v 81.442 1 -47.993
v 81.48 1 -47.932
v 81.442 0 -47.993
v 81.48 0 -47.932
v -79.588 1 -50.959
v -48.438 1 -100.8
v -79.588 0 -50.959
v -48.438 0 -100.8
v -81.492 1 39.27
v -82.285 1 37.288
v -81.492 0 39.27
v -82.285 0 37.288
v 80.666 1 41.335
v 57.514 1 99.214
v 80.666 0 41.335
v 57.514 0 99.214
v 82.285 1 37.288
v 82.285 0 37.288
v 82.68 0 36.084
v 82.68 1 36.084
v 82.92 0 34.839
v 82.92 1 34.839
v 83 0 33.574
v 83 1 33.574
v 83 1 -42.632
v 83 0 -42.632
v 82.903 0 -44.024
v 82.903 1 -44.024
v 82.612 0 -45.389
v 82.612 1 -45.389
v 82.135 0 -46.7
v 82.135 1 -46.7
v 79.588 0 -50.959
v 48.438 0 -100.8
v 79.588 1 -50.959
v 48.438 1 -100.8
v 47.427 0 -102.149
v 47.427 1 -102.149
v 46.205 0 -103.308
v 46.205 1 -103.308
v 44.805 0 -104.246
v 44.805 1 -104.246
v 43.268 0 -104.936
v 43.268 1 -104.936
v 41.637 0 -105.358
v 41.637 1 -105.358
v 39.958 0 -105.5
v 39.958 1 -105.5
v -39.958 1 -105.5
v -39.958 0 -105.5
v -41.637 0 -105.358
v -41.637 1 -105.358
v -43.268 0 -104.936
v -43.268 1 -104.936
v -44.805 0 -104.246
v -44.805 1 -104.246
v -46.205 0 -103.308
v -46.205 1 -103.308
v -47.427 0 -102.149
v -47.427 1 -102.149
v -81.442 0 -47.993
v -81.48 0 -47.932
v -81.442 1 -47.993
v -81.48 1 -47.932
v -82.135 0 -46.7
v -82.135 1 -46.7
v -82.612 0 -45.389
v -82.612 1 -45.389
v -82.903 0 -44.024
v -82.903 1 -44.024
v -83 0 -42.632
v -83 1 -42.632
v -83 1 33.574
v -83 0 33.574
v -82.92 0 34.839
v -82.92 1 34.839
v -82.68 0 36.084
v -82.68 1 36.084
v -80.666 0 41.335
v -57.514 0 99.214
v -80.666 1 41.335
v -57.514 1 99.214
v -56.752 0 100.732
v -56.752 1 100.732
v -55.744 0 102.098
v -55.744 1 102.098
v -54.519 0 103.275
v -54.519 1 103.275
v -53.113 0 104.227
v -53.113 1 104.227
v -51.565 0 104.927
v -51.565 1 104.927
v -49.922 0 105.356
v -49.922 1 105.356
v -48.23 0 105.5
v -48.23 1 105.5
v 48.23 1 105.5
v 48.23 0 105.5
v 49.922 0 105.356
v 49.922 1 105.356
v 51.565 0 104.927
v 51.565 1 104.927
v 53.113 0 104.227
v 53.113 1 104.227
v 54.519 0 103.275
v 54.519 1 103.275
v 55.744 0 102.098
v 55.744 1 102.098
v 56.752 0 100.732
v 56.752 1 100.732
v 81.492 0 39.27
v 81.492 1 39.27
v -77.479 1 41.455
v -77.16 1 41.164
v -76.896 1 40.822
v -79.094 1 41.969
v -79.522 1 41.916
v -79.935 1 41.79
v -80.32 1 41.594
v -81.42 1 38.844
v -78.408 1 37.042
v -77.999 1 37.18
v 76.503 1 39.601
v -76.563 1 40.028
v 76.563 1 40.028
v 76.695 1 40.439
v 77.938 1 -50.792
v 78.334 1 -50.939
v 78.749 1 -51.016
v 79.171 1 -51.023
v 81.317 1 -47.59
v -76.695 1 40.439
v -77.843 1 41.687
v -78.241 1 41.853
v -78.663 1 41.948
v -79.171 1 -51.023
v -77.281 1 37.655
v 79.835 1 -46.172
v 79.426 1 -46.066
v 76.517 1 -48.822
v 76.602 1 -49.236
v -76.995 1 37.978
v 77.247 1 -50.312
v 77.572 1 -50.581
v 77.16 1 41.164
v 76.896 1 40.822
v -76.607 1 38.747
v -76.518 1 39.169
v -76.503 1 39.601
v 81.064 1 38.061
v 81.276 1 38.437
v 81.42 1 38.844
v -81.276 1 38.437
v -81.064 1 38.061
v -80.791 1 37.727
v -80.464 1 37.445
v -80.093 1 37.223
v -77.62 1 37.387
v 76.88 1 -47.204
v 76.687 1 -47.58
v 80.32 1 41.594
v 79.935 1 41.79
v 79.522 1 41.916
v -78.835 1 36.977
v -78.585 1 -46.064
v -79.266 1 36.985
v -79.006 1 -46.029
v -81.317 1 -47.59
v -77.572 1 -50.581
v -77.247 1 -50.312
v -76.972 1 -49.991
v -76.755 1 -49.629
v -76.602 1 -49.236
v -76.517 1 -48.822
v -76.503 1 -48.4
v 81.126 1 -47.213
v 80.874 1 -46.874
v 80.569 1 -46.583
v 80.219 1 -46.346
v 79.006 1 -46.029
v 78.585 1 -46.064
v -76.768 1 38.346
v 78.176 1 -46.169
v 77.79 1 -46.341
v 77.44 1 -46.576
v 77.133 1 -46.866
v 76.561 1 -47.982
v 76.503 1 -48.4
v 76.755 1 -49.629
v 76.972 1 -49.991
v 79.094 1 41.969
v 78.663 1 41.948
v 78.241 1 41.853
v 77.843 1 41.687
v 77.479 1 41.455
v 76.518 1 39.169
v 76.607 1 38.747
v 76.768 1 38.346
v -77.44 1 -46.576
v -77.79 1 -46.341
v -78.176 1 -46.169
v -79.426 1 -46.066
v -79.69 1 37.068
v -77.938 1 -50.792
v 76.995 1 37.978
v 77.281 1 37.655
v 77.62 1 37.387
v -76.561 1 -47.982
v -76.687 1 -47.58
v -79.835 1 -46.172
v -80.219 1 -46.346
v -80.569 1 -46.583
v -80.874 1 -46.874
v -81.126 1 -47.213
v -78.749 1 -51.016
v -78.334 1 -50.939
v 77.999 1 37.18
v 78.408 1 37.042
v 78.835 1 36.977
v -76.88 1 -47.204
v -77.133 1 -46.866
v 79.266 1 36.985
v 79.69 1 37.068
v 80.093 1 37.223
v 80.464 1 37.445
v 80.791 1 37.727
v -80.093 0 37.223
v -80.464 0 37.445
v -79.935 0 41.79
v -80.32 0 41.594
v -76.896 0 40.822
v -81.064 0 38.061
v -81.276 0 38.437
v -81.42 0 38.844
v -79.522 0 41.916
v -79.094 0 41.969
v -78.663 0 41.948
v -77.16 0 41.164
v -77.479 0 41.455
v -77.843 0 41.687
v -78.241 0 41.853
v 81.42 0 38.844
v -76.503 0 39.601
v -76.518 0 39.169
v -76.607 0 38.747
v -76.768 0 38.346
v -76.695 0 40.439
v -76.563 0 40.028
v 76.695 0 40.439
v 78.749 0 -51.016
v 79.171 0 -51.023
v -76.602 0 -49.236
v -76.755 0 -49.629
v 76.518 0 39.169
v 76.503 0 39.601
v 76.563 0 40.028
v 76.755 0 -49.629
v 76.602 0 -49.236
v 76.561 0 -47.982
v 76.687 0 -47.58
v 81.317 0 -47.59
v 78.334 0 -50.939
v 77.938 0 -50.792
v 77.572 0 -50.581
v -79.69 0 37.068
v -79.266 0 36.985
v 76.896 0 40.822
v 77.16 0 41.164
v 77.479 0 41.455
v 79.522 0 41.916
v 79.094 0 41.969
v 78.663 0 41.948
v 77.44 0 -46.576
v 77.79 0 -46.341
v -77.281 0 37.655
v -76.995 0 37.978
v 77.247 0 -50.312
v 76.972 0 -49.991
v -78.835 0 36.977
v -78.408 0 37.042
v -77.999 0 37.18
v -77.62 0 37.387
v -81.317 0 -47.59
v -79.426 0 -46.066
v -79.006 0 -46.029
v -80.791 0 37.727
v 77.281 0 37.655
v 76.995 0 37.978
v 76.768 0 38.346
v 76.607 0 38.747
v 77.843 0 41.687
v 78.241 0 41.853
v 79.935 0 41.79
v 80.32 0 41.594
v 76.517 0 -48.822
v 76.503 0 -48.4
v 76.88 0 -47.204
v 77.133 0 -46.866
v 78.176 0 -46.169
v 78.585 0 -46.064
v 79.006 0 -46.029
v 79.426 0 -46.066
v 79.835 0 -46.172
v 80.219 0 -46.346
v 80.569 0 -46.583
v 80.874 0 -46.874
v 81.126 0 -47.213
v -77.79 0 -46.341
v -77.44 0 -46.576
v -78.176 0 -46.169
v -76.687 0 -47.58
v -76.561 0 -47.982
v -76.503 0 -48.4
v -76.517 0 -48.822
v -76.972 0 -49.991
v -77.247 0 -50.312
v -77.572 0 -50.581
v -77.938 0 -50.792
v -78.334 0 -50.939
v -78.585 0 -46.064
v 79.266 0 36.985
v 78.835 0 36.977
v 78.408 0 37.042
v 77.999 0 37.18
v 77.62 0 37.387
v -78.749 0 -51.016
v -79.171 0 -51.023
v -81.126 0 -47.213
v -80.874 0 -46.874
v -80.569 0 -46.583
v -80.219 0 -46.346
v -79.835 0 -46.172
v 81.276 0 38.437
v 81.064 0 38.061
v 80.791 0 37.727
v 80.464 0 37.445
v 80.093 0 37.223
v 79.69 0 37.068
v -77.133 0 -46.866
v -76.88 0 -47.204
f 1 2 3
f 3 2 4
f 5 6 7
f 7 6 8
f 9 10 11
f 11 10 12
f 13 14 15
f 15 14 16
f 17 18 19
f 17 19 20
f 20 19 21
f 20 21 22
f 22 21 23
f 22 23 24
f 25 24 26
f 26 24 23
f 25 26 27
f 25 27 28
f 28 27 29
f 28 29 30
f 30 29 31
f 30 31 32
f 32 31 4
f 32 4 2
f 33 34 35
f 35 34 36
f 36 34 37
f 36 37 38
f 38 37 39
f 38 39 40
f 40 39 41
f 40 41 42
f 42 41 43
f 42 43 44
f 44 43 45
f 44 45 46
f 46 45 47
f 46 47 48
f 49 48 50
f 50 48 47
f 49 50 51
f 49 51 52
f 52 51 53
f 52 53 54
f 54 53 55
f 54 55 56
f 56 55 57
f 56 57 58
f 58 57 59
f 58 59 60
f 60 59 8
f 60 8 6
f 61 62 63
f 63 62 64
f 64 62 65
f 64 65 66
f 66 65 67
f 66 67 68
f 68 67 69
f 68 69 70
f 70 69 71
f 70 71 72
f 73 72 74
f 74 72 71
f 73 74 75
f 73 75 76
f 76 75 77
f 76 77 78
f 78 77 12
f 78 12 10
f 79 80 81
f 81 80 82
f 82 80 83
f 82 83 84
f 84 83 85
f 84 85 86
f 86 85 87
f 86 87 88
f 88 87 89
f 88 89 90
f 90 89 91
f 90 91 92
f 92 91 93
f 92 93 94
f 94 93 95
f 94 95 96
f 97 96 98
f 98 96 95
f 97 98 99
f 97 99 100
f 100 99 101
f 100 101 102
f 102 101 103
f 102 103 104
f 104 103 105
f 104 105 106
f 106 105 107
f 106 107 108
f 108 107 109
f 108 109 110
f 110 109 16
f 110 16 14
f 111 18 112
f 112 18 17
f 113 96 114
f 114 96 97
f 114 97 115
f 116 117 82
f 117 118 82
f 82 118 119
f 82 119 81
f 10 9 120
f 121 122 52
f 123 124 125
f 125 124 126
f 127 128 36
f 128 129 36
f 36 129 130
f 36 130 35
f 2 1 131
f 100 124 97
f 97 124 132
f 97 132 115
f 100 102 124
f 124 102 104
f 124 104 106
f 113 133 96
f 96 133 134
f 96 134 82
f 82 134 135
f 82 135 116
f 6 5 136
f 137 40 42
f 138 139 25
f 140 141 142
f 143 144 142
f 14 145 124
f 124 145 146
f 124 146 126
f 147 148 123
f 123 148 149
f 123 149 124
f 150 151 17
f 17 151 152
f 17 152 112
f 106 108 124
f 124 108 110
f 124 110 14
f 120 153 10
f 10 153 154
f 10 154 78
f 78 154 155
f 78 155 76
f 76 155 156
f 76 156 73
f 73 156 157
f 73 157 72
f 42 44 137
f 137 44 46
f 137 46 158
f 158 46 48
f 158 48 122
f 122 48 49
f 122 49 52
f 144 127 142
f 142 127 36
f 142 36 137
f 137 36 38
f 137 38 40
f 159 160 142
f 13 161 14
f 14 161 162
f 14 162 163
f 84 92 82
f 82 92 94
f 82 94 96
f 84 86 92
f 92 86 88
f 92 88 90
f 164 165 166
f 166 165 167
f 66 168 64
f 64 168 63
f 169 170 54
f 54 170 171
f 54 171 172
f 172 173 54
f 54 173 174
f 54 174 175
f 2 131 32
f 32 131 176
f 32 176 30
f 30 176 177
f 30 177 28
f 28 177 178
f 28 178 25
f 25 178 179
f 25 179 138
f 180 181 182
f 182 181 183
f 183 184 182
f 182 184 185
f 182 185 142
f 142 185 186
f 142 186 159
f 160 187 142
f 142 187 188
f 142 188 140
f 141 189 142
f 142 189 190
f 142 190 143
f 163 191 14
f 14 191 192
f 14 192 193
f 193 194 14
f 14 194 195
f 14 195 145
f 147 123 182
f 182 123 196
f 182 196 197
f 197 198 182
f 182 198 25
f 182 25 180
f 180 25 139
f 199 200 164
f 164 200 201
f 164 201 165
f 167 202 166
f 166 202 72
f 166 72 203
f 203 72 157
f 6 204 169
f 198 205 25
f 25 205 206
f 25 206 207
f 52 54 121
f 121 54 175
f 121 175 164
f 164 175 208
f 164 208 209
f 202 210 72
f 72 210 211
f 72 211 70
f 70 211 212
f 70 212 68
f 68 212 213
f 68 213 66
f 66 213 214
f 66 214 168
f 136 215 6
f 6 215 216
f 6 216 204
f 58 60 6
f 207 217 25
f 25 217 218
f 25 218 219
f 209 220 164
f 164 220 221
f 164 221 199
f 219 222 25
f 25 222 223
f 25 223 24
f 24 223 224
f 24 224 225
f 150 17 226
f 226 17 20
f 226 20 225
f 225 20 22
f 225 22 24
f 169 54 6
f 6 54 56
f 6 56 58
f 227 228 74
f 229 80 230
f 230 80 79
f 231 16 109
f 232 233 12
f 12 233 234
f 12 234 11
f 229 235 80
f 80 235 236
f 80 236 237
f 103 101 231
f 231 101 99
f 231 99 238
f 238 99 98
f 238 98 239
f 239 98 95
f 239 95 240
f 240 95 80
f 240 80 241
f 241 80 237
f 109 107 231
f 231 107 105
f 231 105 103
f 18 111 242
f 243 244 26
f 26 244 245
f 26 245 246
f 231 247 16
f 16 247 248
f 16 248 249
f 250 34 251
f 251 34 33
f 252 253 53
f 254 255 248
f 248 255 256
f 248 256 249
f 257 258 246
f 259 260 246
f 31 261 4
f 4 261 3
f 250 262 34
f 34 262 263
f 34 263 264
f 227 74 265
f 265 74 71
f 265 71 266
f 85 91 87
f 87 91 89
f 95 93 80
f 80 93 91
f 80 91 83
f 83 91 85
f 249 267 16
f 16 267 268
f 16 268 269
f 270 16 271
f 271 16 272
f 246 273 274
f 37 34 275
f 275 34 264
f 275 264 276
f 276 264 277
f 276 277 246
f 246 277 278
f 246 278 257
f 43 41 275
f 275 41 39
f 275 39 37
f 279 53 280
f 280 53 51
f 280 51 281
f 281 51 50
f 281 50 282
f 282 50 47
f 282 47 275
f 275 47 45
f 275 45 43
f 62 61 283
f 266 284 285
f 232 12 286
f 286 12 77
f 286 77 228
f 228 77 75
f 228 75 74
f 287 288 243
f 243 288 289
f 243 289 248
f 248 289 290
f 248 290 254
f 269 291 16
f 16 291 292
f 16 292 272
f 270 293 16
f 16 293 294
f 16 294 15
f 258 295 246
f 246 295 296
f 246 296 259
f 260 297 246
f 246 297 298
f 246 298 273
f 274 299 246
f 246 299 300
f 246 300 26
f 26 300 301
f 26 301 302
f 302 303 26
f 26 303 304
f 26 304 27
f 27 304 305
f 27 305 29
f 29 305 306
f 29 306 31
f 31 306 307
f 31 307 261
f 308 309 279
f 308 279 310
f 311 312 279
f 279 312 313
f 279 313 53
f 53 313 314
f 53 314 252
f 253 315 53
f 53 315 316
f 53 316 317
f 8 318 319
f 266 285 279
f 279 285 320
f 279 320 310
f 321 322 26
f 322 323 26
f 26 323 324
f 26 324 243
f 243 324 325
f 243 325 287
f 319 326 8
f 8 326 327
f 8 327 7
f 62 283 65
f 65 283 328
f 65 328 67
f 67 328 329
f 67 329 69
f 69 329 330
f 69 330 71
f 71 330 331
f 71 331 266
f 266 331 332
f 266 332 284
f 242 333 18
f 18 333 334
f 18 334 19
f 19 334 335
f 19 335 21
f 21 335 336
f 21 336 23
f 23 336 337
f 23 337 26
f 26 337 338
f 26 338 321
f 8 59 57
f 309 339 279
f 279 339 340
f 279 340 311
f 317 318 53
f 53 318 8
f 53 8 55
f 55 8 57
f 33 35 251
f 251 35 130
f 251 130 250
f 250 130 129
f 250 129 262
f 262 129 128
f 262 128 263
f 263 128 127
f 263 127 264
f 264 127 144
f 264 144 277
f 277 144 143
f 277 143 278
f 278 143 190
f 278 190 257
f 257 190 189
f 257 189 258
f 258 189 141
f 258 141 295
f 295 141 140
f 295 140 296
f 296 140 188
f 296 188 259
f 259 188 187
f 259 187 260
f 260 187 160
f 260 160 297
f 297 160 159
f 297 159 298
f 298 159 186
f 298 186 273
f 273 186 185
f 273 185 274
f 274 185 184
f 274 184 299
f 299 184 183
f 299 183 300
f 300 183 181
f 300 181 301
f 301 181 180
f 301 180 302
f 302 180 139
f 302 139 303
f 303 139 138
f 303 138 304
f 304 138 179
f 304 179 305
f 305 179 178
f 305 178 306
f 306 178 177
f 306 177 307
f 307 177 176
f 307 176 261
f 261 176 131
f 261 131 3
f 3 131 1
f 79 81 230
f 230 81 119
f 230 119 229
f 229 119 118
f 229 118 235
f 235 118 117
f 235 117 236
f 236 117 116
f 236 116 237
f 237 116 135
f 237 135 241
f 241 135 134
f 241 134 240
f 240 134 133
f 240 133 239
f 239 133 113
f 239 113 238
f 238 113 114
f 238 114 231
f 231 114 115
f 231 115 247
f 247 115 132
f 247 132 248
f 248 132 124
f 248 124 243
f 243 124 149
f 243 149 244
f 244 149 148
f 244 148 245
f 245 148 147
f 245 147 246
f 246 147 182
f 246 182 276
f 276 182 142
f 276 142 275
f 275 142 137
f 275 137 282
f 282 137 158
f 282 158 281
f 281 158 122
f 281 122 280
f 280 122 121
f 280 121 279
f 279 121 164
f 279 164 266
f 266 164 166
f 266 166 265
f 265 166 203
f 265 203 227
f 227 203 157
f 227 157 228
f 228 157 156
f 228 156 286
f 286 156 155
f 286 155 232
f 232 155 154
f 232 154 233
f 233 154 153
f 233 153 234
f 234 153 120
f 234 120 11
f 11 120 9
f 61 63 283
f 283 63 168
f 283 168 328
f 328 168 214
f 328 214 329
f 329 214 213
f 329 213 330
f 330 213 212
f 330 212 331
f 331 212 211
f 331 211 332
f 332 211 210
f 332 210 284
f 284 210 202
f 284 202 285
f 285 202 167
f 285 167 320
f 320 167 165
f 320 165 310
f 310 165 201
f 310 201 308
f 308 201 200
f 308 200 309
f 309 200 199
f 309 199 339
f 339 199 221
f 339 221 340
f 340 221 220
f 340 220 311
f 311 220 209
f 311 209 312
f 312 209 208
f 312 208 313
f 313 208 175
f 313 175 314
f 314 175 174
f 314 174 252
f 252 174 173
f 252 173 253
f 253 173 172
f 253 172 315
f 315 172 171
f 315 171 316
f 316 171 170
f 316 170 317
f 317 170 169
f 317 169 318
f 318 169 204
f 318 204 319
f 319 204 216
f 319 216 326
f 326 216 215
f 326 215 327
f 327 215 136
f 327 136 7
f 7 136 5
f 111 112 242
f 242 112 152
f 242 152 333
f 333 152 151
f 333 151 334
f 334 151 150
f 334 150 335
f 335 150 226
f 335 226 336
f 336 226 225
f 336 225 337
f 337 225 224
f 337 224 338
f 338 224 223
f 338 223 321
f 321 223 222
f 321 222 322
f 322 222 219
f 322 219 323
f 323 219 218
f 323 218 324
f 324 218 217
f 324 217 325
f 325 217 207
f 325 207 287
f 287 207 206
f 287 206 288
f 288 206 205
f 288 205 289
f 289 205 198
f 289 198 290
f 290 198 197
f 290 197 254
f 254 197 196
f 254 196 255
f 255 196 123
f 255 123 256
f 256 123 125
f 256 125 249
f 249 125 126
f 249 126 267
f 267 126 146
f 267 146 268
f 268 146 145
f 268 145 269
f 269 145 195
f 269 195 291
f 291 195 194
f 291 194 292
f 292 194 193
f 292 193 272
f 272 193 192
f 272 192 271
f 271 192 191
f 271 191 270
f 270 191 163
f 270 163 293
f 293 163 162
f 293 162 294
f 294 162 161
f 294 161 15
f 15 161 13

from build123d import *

# Parameters (mm, degrees)
BOSS_EXTRUDE1_DEPTH = 1
SKETCH2_R           = 2.5
CUT_EXTRUDE1_DEPTH  = 1


with BuildPart() as part:
    # Sketch1 → Boss-Extrude1 (new body)
    with BuildSketch(Plane(origin=(0, 0, 0), x_dir=(1, 0, 0), z_dir=(0, 1, 0))):
        with BuildLine():
            Line((83, -33.574175964), (83, 42.632037736))
            ThreePointArc((83, 42.632037736), (82.612487462, 45.388862866), (81.47998304, 47.932027136))
            Line((81.47998304, 47.932027136), (48.437506625, 100.7999894))
            ThreePointArc((48.437506625, 100.7999894), (44.805208909, 104.246424812), (39.957523585, 105.5))
            Line((39.957523585, 105.5), (-39.957523585, 105.5))
            ThreePointArc((-39.957523585, 105.5), (-44.805208909, 104.246424812), (-48.437506625, 100.7999894))
            Line((-48.437506625, 100.7999894), (-81.47998304, 47.932027136))
            ThreePointArc((-81.47998304, 47.932027136), (-82.612487462, 45.388862866), (-83, 42.632037736))
            Line((-83, 42.632037736), (-83, -33.574175964))
            ThreePointArc((-83, -33.574175964), (-82.819563867, -35.465251176), (-82.284766909, -37.288082728))
            Line((-82.284766909, -37.288082728), (-57.514437295, -99.213906764))
            ThreePointArc((-57.514437295, -99.213906764), (-53.835958479, -103.780672305), (-48.229670386, -105.5))
            Line((-48.229670386, -105.5), (48.229670386, -105.5))
            ThreePointArc((48.229670386, -105.5), (53.835958479, -103.780672305), (57.514437295, -99.213906764))
            Line((57.514437295, -99.213906764), (82.284766909, -37.288082728))
            ThreePointArc((82.284766909, -37.288082728), (82.819563867, -35.465251176), (83, -33.574175964))
        make_face()
    extrude(amount=BOSS_EXTRUDE1_DEPTH)

    # Sketch2 → Cut-Extrude1 (cut)
    with BuildSketch(Plane(origin=(0, 1, 0), x_dir=(1, 0, 0), z_dir=(0, 1, 0))):
        with Locations((79, 48.528930886)):
            Circle(SKETCH2_R)
        with Locations((79, -39.471069114)):
            Circle(SKETCH2_R)
        with Locations((-79, 48.528930886)):
            Circle(SKETCH2_R)
        with Locations((-79, -39.471069114)):
            Circle(SKETCH2_R)
    extrude(amount=-CUT_EXTRUDE1_DEPTH, mode=Mode.SUBTRACT)


solid = part.part
